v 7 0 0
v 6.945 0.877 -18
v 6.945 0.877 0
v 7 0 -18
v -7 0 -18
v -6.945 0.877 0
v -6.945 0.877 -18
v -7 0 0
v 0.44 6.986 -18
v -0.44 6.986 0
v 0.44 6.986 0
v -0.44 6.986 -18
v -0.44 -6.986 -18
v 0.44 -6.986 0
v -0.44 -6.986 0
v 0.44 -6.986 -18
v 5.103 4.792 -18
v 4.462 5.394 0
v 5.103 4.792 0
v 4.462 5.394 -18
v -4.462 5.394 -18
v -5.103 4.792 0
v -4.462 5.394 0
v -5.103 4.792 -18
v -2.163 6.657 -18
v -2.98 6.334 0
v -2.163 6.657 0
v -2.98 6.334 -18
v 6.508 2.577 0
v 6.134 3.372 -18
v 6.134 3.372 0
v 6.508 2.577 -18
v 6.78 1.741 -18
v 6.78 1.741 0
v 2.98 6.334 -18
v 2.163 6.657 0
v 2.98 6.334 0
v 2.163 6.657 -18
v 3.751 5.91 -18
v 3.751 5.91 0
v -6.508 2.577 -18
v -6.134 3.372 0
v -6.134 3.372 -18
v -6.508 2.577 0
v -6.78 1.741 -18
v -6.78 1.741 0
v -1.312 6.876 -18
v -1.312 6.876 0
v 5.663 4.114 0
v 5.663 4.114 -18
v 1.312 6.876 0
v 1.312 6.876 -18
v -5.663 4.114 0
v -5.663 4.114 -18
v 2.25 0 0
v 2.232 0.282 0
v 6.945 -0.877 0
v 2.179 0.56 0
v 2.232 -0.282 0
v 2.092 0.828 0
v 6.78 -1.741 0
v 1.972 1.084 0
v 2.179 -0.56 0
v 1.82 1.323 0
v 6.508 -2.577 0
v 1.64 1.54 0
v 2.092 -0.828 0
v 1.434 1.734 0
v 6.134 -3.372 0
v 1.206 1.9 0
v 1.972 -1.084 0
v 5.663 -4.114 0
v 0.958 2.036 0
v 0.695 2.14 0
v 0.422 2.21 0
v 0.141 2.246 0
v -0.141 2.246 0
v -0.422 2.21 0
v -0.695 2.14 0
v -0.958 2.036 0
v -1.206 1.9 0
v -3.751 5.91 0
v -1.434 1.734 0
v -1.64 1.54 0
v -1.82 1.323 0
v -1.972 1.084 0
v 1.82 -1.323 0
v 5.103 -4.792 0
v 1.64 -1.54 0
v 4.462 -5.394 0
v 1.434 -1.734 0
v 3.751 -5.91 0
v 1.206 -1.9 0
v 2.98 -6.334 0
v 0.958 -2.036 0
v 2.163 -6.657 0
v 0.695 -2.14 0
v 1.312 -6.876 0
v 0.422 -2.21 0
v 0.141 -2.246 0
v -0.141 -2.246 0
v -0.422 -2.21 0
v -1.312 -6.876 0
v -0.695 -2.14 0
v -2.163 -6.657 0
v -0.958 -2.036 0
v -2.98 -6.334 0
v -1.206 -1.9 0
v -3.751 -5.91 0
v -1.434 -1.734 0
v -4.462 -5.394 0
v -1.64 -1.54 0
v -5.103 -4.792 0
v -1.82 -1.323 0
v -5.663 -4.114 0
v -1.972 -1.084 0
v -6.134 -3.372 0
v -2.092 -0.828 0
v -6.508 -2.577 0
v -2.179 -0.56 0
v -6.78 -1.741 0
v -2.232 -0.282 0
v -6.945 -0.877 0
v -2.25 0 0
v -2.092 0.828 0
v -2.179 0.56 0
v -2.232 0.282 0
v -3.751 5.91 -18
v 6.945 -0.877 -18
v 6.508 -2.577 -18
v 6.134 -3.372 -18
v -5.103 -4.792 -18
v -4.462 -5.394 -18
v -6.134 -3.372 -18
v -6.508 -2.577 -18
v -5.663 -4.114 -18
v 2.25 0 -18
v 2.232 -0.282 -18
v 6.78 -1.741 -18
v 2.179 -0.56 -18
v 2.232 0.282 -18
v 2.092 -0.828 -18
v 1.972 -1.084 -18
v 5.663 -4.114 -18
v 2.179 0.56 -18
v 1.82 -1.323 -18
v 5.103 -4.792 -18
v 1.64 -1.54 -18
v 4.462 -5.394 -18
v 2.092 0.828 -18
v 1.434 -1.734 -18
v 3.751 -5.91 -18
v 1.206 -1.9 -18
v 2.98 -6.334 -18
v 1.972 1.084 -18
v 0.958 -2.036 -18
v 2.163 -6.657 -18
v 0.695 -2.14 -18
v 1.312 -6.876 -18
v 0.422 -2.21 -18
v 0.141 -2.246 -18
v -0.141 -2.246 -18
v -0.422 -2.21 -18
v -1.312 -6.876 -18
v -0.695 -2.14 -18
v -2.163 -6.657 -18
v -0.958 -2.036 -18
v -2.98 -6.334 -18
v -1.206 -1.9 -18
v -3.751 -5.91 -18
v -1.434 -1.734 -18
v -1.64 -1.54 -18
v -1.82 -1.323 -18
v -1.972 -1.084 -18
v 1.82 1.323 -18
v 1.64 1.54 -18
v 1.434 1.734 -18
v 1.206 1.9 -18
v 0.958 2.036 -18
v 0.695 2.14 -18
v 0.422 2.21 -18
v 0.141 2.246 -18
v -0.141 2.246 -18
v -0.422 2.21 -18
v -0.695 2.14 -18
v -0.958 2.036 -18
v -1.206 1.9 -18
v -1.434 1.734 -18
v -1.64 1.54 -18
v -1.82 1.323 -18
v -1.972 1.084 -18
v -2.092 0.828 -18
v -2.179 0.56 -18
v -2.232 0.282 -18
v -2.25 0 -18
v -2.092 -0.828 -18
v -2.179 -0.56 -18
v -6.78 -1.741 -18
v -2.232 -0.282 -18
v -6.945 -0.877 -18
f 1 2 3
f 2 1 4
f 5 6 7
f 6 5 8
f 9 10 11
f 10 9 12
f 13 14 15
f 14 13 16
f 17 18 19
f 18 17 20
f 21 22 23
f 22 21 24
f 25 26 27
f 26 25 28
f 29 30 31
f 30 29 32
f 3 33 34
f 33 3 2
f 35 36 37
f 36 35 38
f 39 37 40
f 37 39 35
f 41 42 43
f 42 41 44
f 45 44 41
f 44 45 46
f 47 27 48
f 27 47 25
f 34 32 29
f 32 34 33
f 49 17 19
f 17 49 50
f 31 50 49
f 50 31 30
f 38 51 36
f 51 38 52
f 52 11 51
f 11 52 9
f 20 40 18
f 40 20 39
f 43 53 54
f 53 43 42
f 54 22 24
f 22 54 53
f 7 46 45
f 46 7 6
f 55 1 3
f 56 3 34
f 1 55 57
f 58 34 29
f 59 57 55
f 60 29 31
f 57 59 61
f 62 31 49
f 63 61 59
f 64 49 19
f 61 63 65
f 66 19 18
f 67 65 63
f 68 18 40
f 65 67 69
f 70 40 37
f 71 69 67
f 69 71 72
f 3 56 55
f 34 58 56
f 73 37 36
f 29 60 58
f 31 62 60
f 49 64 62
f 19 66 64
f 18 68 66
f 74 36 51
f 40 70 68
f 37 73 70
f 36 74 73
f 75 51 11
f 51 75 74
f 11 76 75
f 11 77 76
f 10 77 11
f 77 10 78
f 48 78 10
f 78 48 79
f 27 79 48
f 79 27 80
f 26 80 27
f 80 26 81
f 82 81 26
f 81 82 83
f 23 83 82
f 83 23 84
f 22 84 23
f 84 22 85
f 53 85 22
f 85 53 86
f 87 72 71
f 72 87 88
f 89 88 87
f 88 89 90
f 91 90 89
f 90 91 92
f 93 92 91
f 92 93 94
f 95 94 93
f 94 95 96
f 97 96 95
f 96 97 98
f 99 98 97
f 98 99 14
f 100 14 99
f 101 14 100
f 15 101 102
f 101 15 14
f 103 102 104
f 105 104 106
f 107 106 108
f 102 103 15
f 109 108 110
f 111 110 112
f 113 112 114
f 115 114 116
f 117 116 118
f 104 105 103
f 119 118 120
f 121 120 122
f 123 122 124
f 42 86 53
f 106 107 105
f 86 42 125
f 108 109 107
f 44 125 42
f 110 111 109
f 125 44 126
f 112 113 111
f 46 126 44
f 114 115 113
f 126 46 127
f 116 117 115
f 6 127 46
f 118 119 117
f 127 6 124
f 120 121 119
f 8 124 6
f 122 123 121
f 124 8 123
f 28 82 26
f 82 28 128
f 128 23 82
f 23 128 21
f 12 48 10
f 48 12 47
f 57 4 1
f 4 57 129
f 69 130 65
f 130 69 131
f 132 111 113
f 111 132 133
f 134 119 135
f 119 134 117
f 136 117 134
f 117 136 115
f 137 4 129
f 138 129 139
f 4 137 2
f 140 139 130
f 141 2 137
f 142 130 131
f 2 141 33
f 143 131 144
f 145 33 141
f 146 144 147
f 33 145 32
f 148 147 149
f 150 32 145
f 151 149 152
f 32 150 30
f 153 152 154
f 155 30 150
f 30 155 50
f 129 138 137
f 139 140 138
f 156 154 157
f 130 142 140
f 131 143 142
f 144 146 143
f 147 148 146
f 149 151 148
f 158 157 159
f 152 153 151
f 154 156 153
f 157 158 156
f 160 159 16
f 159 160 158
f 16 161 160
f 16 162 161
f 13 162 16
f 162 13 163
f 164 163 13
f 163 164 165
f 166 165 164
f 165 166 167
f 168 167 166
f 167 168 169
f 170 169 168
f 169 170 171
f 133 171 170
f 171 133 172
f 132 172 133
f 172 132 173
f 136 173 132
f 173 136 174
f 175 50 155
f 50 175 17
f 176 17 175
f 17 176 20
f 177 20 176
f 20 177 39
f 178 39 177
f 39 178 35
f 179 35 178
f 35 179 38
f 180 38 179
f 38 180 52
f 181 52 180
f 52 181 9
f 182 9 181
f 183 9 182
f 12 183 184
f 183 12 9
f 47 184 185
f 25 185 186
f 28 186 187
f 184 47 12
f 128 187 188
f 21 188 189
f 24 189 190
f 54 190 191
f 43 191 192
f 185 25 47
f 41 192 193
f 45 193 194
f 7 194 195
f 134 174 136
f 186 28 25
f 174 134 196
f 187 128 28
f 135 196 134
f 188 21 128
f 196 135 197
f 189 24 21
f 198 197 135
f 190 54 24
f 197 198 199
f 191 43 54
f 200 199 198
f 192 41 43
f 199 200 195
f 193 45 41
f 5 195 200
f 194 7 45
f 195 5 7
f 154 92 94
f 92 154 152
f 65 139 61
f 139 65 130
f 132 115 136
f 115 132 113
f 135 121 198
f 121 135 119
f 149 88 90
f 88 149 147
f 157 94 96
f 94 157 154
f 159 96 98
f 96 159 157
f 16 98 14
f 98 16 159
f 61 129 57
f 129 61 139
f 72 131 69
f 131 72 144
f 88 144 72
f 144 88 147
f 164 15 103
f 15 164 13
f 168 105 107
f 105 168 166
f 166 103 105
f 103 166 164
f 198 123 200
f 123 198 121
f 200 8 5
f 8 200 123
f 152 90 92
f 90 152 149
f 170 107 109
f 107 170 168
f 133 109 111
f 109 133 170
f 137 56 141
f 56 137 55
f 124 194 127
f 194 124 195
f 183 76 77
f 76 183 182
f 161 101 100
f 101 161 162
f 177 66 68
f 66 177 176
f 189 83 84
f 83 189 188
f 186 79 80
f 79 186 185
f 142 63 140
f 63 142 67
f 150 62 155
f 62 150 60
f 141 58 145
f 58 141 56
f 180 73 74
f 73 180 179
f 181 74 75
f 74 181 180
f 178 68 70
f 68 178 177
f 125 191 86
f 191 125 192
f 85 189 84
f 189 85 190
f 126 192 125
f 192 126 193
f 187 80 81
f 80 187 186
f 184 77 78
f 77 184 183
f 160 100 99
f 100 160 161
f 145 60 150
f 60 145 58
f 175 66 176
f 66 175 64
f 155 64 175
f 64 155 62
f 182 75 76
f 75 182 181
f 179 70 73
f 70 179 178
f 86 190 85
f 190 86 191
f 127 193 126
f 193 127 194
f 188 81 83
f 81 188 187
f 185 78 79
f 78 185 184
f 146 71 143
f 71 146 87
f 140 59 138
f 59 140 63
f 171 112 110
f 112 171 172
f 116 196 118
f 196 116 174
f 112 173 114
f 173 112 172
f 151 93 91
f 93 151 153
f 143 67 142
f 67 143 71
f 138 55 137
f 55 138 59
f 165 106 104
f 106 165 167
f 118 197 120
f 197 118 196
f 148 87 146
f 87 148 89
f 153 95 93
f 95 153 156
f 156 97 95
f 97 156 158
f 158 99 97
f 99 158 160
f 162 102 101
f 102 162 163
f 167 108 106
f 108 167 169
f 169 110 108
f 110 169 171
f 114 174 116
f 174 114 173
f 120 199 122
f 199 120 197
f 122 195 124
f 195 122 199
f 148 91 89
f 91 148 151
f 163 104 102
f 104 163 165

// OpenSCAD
$fn = 50;


difference() {
	union() {
		translate(v = [0, 0, -18.0000000000]) {
			cylinder(h = 18, r = 7.0000000000);
		}
		cylinder(h = 0, r = 10.0000000000);
	}
	union() {
		#translate(v = [0, 0, -18]) {
			cylinder(h = 18, r = 2.2500000000);
		}
	}
}
